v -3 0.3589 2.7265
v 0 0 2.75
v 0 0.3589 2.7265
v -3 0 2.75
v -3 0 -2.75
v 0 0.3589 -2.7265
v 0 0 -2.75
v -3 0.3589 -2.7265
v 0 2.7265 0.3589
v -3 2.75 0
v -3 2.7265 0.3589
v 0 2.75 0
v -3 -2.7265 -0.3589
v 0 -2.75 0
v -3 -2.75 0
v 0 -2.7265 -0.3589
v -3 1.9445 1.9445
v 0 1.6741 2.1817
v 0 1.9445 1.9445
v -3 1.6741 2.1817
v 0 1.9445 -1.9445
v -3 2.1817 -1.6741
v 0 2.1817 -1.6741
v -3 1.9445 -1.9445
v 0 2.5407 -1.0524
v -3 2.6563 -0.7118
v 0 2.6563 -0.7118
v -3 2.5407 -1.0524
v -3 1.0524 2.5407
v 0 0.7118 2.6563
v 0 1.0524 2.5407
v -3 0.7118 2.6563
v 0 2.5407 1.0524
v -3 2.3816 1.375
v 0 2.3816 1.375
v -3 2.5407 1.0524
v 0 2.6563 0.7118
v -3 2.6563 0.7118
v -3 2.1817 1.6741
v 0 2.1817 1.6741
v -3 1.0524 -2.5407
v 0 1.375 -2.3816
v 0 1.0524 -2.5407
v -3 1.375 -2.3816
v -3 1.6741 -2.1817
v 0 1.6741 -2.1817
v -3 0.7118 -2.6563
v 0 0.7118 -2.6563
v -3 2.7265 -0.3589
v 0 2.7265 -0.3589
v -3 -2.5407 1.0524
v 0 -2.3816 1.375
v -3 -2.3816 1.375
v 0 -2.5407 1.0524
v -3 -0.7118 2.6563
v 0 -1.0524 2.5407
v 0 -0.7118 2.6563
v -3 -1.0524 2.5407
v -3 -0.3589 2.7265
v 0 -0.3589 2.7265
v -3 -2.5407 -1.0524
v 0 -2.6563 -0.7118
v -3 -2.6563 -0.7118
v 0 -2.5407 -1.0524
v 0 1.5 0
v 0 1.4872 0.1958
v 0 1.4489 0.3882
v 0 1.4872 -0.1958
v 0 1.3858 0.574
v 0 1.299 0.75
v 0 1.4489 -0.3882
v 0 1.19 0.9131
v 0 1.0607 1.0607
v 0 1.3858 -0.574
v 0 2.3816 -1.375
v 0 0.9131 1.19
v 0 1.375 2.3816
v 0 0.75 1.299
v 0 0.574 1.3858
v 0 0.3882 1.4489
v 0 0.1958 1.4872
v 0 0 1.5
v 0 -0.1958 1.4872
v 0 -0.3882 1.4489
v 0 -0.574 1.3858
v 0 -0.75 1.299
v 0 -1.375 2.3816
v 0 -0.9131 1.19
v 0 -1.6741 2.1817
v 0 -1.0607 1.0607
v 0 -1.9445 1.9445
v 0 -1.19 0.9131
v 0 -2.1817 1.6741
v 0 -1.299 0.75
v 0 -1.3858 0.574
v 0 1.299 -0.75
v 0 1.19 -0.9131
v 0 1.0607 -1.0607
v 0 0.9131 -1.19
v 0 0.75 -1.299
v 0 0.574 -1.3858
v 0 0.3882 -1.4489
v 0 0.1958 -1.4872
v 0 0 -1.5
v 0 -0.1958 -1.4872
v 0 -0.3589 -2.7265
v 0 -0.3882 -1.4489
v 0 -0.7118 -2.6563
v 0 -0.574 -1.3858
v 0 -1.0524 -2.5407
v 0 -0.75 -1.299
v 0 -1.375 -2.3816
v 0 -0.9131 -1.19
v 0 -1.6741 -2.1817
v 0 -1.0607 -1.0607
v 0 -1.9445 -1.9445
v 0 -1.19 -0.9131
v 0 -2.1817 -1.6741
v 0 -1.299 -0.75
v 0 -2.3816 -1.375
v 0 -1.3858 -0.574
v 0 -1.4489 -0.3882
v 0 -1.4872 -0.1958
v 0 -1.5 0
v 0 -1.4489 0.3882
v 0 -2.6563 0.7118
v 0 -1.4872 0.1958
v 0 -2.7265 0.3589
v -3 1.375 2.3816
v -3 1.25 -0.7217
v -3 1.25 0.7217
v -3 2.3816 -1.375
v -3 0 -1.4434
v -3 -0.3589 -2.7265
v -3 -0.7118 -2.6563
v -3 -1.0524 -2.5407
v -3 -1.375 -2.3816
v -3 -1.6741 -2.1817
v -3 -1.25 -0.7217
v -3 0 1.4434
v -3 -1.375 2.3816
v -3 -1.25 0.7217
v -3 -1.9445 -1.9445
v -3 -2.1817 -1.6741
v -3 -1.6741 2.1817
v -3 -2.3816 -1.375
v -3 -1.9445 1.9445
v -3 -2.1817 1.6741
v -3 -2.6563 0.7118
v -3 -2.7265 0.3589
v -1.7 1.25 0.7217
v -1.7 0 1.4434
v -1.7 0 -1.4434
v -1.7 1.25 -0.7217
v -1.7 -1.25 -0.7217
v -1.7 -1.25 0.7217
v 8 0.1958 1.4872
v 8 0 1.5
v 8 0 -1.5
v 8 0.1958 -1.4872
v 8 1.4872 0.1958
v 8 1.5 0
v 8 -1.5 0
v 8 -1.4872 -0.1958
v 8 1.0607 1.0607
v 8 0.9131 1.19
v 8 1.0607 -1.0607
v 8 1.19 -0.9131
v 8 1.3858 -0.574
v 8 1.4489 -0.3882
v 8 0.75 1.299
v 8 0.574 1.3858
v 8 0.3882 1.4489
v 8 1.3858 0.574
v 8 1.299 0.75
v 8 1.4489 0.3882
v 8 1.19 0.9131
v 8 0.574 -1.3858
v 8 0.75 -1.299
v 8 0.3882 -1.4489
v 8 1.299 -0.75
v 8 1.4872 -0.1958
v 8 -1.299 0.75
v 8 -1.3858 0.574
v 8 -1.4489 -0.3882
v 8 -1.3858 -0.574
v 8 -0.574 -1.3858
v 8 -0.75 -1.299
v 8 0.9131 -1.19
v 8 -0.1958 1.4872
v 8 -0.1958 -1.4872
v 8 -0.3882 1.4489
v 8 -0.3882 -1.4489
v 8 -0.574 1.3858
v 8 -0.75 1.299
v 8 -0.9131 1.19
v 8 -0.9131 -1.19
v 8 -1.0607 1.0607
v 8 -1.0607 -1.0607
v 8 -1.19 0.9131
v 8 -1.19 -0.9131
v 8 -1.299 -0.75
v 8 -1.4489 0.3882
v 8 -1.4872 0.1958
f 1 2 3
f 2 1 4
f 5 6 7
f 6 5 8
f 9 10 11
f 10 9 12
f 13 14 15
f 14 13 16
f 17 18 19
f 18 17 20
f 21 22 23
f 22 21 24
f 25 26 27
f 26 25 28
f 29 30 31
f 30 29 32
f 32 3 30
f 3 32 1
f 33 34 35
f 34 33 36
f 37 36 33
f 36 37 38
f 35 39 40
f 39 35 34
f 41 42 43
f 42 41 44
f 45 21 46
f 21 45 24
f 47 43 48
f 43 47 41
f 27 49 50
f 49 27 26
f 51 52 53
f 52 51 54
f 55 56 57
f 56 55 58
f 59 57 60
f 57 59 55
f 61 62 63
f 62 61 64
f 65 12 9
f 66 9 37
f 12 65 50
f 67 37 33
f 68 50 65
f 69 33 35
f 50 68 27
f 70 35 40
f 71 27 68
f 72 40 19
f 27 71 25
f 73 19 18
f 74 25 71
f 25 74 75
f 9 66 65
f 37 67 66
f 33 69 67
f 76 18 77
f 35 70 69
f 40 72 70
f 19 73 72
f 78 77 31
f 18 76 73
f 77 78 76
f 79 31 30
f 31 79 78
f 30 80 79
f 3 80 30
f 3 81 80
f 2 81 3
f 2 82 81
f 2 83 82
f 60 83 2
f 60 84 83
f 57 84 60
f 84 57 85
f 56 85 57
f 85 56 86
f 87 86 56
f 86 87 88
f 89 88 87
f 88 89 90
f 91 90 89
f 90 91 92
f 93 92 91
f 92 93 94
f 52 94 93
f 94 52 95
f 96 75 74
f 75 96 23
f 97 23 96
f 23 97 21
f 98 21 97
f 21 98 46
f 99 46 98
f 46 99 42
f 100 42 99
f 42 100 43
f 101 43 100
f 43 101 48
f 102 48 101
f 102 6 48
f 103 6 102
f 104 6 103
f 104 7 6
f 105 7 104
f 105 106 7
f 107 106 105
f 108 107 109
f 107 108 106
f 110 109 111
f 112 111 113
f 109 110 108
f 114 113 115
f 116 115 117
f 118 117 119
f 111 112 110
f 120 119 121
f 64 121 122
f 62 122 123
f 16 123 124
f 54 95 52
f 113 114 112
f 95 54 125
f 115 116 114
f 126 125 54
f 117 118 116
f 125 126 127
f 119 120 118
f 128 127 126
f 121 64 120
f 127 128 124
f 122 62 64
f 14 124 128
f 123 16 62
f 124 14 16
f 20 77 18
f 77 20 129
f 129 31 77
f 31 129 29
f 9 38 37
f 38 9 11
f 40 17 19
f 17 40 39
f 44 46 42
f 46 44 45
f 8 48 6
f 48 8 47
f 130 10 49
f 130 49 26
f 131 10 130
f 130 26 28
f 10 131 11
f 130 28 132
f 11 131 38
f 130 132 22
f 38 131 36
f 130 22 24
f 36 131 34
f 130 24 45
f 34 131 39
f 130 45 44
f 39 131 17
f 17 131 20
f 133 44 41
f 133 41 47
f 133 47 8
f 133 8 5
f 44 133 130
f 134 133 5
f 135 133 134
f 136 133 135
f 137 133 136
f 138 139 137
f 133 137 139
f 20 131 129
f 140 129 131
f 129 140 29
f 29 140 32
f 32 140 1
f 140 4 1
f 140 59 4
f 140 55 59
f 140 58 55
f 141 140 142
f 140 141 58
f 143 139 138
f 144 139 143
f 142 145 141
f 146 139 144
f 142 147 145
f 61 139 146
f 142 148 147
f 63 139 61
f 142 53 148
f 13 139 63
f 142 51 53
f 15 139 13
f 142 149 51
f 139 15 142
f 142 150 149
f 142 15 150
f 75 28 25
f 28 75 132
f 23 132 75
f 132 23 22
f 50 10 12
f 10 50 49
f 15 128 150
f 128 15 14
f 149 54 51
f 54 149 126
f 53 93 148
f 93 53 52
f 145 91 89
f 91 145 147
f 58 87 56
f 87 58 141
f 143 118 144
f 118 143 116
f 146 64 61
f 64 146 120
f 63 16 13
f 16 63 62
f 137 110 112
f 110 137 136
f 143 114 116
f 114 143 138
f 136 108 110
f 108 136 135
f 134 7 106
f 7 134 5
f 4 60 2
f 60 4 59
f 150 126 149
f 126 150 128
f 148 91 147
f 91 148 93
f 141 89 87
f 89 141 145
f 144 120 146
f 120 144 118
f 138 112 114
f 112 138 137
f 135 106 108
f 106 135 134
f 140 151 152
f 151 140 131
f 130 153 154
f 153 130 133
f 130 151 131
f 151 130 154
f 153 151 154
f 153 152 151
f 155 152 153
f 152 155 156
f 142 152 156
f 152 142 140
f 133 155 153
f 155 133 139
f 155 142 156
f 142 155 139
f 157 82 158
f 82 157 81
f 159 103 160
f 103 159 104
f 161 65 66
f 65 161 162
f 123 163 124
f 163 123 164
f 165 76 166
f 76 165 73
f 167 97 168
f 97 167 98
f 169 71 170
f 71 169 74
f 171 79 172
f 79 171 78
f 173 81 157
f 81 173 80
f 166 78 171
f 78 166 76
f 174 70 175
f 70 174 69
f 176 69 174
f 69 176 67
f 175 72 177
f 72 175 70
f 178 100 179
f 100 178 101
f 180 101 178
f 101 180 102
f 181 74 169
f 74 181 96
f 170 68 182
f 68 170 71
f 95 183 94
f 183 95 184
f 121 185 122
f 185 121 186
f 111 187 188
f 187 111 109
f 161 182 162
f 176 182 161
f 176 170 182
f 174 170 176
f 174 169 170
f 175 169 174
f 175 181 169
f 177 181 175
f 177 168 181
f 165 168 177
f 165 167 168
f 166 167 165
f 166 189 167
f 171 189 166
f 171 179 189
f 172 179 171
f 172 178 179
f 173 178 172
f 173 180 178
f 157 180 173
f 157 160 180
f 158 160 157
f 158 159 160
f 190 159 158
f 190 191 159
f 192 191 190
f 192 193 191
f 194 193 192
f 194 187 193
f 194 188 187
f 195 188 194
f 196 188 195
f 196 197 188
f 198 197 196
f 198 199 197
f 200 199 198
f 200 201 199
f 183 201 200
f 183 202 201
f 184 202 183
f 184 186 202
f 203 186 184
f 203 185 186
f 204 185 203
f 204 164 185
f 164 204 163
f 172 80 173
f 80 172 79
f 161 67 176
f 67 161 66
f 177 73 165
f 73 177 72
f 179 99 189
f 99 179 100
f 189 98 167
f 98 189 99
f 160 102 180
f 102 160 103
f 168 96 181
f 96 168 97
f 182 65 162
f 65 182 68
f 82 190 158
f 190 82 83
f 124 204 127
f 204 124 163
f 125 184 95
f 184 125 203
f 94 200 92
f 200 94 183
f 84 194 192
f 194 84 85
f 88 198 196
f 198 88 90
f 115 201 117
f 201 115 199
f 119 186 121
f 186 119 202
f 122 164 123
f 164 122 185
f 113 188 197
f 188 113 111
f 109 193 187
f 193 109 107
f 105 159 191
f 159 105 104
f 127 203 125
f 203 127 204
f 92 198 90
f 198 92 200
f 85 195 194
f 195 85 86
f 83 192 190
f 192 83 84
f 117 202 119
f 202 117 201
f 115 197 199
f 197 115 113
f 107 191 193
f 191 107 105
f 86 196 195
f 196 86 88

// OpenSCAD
// file: ../../lib/nutsnbolts/data-access.scad
// Norm Nuts and Bolts - a OpenSCAD library
// Copyright (C) 2012  Johannes Kneer

// This program is free software: you can redistribute it and/or modify
// it under the terms of the GNU General Public License as published by
// the Free Software Foundation, either version 3 of the License, or
// (at your option) any later version.

// This program is distributed in the hope that it will be useful,
// but WITHOUT ANY WARRANTY; without even the implied warranty of
// MERCHANTABILITY or FITNESS FOR A PARTICULAR PURPOSE.  See the
// GNU General Public License for more details.

// You should have received a copy of the GNU General Public License
// along with this program.  If not, see <http://www.gnu.org/licenses/>.


// DATABASE ACCESS FUNCTIONS AND CONSTANTS



// == CONSTANTS ==

// screw table access keys
_NB_S_DESC            = 0;
_NB_S_FAMKEY			    = 1;
_NB_S_LENGTH          = 2;
_NB_S_NOTHREAD_LENGTH = 3;

_NB_F_DESC			      = 0;
_NB_F_OUTER_DIA       = 1;
_NB_F_INNER_DIA       = 2;
_NB_F_LEAD            = 3;
_NB_F_KEY             = 4;
_NB_F_KEY_DEPTH       = 5;
_NB_F_HEAD_HEIGHT     = 6;
_NB_F_HEAD_DIA        = 7;
_NB_F_NUT_KEY         = 8;
_NB_F_NUT_HEIGHT      = 9;
_NB_F_PITCH_FINE      = 10;
_NB_F_PITCH_MEDIUM    = 11;
_NB_F_PITCH_COARSE    = 12;


// == FUNCTIONS ==

// _get_screw("descriptor")   with descriptor = M8x25
//   find the line for a general object in the data matrix

function _get_screw(n) = data_screw[search([n], data_screw)[0]];
function _get_screw_fam(n) = data_screw_fam[search([_get_screw(n)[_NB_S_FAMKEY]], data_screw_fam)[0]];

function _get_fam(n) = data_screw_fam[search([n], data_screw_fam)[0]];


// _get_XXXXX("descriptor") functions
// find a single property in the database

function _get_desc(n)        = _get_screw(n)[_NB_S_DESC];
function _get_famkey(n)         = _get_screw(n)[_NB_S_FAMKEY];
function _get_length(n)      = _get_screw(n)[_NB_S_LENGTH];
function _get_nt_length(n)   = _get_screw(n)[_NB_S_NOTHREAD_LENGTH];

function _get_outer_dia(n)   = _get_screw_fam(n)[_NB_F_OUTER_DIA];
function _get_inner_dia(n)   = _get_screw_fam(n)[_NB_F_INNER_DIA];
function _get_lead(n)        = _get_screw_fam(n)[_NB_F_LEAD];
function _get_head_height(n) = _get_screw_fam(n)[_NB_F_HEAD_HEIGHT];
function _get_head_dia(n)    = _get_screw_fam(n)[_NB_F_HEAD_DIA];
function _get_nut_key(n)     = _get_screw_fam(n)[_NB_F_NUT_KEY];
function _get_nut_height(n)  = _get_screw_fam(n)[_NB_F_NUT_HEIGHT];
function _get_fine_pitch(n)  = _get_screw_fam(n)[_NB_F_PITCH_FINE];
function _get_medium_pitch(n)  = _get_screw_fam(n)[_NB_F_PITCH_MEDIUM];
function _get_coarse_pitch(n)  = _get_screw_fam(n)[_NB_F_PITCH_COARSE];
// main file
/**********************************************************************************************************************
 **
 ** parts/vitamins/screw_M3x8.scad
 **
 ** This file renders a screw of the dimensions specified by the file name.
 **
 **********************************************************************************************************************/

include <../../lib/nutsnbolts/cyl_head_bolt.scad>;

$fn = 48;
rotate([0, -90, 0])
	screw("M3x8"); 
